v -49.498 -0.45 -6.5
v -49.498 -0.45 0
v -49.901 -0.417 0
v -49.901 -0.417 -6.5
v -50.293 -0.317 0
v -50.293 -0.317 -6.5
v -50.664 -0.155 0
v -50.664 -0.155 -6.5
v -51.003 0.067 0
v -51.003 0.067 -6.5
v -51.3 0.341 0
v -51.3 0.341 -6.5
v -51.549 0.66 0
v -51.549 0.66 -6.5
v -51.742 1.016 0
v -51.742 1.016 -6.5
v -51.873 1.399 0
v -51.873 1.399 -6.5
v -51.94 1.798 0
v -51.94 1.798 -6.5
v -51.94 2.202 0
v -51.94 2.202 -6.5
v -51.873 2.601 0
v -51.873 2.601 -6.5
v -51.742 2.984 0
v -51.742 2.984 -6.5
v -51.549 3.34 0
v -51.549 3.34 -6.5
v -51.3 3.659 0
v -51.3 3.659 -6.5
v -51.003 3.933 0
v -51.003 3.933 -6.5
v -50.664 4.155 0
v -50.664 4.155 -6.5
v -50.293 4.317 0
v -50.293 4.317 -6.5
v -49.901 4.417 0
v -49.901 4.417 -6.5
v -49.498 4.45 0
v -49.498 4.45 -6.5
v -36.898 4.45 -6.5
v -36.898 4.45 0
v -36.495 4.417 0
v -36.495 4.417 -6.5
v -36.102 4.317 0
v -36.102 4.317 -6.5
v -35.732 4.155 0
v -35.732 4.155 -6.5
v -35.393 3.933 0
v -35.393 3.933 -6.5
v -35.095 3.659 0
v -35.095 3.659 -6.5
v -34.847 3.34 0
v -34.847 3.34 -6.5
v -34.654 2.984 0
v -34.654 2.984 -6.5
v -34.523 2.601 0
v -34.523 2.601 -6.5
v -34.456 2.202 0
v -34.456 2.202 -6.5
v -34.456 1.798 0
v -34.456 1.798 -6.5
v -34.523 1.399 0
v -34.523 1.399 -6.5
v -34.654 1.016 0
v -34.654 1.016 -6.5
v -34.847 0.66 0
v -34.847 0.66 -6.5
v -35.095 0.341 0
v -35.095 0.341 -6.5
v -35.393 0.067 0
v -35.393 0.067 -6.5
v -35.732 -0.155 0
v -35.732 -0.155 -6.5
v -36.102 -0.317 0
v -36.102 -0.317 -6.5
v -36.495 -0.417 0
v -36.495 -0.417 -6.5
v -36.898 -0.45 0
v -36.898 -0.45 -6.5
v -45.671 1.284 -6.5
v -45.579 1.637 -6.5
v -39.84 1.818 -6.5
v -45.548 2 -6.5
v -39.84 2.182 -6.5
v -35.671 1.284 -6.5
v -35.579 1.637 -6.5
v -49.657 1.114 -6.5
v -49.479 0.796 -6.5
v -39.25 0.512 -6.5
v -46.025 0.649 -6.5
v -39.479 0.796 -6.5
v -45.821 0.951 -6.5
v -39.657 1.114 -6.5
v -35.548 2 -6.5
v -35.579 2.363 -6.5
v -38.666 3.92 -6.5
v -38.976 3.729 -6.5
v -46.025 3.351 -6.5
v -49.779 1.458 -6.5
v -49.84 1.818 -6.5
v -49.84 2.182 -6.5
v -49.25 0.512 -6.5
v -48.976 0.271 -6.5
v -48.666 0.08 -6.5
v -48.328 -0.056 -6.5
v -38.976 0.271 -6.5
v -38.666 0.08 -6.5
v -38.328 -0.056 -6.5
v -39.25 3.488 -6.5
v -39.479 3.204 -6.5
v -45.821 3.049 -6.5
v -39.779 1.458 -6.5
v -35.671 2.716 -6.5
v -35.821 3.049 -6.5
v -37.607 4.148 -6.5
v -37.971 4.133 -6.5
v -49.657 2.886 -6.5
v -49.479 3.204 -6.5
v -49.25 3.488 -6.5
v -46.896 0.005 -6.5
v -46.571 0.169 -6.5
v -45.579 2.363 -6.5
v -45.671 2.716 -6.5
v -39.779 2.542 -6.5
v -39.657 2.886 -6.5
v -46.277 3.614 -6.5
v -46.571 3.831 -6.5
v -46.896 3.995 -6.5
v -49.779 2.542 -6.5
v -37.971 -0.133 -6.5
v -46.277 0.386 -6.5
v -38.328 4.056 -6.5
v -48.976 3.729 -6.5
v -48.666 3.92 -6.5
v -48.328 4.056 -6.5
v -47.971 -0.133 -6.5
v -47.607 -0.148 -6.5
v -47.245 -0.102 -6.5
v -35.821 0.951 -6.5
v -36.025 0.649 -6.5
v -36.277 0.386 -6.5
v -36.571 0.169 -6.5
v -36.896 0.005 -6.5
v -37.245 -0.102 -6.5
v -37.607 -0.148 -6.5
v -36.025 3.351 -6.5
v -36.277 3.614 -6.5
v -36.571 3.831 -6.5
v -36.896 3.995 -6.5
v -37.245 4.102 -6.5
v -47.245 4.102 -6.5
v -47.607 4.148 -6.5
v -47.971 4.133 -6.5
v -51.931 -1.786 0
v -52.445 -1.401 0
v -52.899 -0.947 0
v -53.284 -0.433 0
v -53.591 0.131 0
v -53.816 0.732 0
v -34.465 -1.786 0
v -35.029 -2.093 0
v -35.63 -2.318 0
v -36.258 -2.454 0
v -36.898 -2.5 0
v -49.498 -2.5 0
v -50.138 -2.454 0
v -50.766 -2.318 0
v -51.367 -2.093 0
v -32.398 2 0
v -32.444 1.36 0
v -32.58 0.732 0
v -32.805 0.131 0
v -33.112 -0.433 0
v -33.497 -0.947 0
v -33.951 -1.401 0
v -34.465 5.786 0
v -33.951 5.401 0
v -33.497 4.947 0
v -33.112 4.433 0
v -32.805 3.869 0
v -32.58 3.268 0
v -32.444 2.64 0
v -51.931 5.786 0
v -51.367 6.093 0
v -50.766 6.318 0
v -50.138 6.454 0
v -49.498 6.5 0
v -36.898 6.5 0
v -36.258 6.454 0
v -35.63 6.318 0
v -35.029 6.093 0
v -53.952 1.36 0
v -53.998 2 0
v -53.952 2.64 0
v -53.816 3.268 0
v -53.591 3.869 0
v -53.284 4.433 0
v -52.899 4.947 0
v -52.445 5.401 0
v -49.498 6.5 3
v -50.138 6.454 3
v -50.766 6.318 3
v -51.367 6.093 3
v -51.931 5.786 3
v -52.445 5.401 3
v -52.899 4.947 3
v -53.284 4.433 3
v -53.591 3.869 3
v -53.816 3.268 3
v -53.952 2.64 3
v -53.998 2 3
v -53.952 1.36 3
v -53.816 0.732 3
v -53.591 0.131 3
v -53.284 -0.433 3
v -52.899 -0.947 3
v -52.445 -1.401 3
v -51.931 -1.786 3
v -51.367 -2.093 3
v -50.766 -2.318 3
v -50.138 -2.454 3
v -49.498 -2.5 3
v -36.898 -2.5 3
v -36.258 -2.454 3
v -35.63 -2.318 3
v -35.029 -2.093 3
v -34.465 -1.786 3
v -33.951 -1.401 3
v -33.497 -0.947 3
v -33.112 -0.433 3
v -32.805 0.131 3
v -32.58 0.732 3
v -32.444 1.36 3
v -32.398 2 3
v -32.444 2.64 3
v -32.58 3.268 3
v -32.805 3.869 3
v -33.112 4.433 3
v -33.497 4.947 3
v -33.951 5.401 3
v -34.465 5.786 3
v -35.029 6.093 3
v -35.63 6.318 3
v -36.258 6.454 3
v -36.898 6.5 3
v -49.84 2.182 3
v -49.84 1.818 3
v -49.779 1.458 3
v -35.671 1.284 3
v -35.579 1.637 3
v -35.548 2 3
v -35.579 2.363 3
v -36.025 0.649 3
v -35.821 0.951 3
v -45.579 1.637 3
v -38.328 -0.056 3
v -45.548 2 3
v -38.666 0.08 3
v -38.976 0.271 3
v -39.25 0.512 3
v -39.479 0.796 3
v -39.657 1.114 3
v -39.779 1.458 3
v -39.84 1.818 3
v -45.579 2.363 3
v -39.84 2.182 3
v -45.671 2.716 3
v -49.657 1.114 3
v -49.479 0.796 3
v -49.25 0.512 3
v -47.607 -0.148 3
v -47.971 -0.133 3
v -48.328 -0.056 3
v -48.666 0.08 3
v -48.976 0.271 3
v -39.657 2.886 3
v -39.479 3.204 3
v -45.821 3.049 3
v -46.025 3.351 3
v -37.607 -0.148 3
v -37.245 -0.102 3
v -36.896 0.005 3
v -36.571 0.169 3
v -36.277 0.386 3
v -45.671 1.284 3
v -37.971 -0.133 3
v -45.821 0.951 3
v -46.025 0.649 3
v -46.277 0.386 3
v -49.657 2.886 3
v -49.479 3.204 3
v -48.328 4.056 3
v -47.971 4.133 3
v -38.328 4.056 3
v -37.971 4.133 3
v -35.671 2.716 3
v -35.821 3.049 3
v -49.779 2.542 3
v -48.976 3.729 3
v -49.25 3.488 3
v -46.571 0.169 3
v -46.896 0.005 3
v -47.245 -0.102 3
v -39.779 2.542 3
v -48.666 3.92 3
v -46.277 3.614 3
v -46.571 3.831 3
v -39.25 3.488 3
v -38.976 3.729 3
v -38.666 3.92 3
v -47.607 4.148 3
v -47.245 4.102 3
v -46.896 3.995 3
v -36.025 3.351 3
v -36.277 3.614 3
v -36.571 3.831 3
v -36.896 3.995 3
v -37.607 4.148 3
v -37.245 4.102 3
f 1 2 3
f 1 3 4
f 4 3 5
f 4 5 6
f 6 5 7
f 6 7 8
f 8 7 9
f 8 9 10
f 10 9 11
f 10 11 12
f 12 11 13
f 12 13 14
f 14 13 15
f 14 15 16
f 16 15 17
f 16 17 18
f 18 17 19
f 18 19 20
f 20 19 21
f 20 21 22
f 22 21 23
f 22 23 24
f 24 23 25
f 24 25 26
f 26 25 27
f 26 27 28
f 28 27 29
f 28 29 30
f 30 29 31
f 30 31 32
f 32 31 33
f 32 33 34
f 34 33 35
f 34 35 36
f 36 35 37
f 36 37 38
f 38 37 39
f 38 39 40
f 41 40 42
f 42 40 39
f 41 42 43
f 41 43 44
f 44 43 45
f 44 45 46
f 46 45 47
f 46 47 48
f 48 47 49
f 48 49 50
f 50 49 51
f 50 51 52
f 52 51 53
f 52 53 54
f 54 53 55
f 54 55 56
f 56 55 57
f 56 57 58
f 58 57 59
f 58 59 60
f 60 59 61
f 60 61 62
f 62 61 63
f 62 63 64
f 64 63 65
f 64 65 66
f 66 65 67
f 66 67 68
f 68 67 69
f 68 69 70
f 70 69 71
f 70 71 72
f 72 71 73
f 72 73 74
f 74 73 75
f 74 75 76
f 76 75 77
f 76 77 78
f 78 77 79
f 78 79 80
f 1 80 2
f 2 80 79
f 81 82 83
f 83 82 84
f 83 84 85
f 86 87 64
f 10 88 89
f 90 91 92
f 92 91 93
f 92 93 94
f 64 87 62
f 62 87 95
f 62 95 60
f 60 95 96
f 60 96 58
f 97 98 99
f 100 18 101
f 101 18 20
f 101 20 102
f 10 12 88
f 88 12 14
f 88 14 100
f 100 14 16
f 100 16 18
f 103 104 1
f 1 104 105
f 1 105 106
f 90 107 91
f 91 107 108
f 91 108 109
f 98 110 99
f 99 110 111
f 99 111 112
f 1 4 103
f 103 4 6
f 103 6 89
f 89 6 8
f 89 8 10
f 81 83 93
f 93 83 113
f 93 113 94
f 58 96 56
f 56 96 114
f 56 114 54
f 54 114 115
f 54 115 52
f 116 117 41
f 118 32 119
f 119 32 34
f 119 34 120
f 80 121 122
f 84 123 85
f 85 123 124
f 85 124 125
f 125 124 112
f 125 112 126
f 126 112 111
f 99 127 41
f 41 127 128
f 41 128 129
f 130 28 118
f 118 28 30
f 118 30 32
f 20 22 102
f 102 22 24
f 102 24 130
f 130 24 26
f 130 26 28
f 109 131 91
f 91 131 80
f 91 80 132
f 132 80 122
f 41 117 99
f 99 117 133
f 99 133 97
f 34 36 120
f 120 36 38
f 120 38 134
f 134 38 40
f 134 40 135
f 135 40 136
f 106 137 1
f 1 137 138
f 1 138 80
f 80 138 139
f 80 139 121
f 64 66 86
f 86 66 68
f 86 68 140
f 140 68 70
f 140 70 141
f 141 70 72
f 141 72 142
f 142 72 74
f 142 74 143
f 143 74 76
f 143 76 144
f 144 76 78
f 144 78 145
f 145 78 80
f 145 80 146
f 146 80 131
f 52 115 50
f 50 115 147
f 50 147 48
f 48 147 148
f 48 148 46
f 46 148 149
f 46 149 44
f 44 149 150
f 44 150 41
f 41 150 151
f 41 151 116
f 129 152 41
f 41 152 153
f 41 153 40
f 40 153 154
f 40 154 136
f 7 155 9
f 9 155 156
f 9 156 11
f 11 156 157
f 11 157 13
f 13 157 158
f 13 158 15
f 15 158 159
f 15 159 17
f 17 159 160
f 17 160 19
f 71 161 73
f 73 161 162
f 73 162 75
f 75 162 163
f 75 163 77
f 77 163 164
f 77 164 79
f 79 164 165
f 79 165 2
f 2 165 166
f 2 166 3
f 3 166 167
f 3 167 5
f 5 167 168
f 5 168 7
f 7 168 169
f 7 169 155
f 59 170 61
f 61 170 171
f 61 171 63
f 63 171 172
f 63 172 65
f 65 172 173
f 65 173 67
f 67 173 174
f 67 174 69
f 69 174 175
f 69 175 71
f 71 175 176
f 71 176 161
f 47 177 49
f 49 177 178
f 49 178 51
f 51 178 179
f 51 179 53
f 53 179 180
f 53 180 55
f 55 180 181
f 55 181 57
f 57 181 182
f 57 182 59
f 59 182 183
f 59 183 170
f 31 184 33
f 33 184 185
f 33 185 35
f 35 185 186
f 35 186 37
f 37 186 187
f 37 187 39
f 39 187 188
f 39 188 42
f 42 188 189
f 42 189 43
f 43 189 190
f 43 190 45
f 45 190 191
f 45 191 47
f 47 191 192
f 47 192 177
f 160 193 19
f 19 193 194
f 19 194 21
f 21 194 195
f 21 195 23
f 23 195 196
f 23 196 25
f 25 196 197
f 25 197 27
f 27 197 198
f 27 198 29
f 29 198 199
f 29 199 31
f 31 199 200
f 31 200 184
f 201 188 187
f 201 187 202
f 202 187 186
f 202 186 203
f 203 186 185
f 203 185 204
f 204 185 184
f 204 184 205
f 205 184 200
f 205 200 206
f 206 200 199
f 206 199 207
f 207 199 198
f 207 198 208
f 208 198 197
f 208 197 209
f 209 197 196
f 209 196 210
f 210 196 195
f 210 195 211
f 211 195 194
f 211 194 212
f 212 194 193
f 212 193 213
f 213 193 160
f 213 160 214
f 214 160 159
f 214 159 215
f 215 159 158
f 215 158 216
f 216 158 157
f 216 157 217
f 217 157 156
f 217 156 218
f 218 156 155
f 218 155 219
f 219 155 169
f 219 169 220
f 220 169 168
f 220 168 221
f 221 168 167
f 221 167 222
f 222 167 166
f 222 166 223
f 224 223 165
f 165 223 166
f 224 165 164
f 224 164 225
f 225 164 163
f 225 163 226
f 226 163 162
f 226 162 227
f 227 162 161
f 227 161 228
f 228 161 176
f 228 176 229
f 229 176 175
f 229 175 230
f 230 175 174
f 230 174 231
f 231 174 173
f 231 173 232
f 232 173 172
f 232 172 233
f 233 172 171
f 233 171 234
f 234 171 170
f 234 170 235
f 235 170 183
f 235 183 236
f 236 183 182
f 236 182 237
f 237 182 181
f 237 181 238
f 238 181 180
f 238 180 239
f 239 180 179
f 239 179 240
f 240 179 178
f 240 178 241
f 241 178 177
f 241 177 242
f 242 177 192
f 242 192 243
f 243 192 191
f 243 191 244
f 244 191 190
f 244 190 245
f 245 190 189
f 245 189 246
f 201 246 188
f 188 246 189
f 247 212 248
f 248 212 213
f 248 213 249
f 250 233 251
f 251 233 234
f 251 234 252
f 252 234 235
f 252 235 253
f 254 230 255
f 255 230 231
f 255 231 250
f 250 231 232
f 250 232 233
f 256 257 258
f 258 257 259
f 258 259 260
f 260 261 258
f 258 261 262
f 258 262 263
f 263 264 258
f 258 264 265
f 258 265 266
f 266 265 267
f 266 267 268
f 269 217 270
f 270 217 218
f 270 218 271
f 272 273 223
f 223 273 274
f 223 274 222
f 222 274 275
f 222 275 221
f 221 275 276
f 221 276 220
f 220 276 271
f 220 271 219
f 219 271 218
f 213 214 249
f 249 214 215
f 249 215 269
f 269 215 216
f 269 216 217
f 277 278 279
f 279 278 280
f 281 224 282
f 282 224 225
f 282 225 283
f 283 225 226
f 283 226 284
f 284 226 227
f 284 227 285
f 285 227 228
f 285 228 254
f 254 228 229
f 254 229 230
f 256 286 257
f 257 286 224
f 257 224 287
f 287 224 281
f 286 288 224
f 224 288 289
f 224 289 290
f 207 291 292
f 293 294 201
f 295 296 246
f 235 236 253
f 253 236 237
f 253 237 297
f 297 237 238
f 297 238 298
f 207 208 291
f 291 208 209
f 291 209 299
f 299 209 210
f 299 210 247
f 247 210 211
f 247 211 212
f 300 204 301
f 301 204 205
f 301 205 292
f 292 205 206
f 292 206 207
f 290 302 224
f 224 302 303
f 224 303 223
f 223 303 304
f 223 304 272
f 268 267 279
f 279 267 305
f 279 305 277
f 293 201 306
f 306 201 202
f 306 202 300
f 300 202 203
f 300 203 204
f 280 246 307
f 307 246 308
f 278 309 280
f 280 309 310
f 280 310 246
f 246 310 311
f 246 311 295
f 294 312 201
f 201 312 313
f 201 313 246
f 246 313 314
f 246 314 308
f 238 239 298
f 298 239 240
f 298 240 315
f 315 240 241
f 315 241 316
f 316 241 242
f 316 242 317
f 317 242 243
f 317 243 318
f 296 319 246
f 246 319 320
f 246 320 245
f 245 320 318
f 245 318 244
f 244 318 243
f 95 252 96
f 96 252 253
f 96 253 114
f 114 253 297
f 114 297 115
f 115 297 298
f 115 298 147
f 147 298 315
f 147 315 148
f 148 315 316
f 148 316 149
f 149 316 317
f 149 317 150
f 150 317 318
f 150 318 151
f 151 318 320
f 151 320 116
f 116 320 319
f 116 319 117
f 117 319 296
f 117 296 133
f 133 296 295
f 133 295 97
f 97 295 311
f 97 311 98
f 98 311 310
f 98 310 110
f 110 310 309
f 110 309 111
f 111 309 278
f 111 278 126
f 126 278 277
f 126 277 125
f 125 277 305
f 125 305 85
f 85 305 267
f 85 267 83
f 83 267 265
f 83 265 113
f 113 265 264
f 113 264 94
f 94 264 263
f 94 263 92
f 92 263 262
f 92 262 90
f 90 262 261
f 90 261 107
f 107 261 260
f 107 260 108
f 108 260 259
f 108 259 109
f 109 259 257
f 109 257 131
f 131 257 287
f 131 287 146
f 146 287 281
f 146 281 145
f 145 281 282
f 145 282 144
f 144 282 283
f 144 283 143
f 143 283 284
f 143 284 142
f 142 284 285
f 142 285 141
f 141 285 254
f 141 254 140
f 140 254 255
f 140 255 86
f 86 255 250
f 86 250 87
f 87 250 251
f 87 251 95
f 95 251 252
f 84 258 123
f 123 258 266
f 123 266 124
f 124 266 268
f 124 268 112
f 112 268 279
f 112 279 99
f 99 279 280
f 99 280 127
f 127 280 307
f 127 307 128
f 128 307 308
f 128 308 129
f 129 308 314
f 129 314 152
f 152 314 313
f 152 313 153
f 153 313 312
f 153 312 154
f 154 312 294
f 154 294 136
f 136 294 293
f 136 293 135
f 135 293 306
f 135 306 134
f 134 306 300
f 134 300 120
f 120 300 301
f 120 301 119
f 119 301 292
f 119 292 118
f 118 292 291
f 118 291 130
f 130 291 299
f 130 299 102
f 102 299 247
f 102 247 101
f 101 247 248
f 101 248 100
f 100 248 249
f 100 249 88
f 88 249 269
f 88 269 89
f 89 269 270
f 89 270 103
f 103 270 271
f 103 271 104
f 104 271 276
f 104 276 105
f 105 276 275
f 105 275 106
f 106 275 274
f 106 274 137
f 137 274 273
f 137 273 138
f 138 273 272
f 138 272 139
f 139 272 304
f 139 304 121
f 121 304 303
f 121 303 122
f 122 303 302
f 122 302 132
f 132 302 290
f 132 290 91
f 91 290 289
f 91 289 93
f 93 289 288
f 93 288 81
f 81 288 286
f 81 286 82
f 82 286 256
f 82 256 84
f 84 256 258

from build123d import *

# Parameters (mm, degrees)
BOSS_EXTRUDE1_DEPTH  = 6.5
BOSS_EXTRUDE2_DEPTH  = 3
M4_CLEARANCE_HOLE1_D = 4.3


with BuildPart() as part:
    # Sketch2 → Boss-Extrude1 (new body)
    with BuildSketch(Plane.XY):
        with BuildLine():
            Line((-49.497947743, 4.45), (-36.897947743, 4.45))
            ThreePointArc((-36.897947743, 4.45), (-34.447947743, 2), (-36.897947743, -0.45))
            Line((-36.897947743, -0.45), (-49.497947743, -0.45))
            ThreePointArc((-49.497947743, -0.45), (-51.947947743, 2), (-49.497947743, 4.45))
        make_face()
    extrude(amount=-BOSS_EXTRUDE1_DEPTH)

    # Sketch3 → Boss-Extrude2 (add)
    with BuildSketch(Plane.XY):
        with BuildLine():
            Line((-49.497947743, 6.5), (-36.897947743, 6.5))
            ThreePointArc((-36.897947743, 6.5), (-32.397947743, 2), (-36.897947743, -2.5))
            Line((-36.897947743, -2.5), (-49.497947743, -2.5))
            ThreePointArc((-49.497947743, -2.5), (-53.997947743, 2), (-49.497947743, 6.5))
        make_face()
    extrude(amount=BOSS_EXTRUDE2_DEPTH)

    # M4 Clearance Hole1 (through all)
    with Locations(Plane(origin=(-47.697947743, 2, 3), x_dir=(1, 0, 0), z_dir=(0, 0, 1))):
        with Locations((0, 0), (10, 0)):
            Hole(M4_CLEARANCE_HOLE1_D / 2)


solid = part.part
